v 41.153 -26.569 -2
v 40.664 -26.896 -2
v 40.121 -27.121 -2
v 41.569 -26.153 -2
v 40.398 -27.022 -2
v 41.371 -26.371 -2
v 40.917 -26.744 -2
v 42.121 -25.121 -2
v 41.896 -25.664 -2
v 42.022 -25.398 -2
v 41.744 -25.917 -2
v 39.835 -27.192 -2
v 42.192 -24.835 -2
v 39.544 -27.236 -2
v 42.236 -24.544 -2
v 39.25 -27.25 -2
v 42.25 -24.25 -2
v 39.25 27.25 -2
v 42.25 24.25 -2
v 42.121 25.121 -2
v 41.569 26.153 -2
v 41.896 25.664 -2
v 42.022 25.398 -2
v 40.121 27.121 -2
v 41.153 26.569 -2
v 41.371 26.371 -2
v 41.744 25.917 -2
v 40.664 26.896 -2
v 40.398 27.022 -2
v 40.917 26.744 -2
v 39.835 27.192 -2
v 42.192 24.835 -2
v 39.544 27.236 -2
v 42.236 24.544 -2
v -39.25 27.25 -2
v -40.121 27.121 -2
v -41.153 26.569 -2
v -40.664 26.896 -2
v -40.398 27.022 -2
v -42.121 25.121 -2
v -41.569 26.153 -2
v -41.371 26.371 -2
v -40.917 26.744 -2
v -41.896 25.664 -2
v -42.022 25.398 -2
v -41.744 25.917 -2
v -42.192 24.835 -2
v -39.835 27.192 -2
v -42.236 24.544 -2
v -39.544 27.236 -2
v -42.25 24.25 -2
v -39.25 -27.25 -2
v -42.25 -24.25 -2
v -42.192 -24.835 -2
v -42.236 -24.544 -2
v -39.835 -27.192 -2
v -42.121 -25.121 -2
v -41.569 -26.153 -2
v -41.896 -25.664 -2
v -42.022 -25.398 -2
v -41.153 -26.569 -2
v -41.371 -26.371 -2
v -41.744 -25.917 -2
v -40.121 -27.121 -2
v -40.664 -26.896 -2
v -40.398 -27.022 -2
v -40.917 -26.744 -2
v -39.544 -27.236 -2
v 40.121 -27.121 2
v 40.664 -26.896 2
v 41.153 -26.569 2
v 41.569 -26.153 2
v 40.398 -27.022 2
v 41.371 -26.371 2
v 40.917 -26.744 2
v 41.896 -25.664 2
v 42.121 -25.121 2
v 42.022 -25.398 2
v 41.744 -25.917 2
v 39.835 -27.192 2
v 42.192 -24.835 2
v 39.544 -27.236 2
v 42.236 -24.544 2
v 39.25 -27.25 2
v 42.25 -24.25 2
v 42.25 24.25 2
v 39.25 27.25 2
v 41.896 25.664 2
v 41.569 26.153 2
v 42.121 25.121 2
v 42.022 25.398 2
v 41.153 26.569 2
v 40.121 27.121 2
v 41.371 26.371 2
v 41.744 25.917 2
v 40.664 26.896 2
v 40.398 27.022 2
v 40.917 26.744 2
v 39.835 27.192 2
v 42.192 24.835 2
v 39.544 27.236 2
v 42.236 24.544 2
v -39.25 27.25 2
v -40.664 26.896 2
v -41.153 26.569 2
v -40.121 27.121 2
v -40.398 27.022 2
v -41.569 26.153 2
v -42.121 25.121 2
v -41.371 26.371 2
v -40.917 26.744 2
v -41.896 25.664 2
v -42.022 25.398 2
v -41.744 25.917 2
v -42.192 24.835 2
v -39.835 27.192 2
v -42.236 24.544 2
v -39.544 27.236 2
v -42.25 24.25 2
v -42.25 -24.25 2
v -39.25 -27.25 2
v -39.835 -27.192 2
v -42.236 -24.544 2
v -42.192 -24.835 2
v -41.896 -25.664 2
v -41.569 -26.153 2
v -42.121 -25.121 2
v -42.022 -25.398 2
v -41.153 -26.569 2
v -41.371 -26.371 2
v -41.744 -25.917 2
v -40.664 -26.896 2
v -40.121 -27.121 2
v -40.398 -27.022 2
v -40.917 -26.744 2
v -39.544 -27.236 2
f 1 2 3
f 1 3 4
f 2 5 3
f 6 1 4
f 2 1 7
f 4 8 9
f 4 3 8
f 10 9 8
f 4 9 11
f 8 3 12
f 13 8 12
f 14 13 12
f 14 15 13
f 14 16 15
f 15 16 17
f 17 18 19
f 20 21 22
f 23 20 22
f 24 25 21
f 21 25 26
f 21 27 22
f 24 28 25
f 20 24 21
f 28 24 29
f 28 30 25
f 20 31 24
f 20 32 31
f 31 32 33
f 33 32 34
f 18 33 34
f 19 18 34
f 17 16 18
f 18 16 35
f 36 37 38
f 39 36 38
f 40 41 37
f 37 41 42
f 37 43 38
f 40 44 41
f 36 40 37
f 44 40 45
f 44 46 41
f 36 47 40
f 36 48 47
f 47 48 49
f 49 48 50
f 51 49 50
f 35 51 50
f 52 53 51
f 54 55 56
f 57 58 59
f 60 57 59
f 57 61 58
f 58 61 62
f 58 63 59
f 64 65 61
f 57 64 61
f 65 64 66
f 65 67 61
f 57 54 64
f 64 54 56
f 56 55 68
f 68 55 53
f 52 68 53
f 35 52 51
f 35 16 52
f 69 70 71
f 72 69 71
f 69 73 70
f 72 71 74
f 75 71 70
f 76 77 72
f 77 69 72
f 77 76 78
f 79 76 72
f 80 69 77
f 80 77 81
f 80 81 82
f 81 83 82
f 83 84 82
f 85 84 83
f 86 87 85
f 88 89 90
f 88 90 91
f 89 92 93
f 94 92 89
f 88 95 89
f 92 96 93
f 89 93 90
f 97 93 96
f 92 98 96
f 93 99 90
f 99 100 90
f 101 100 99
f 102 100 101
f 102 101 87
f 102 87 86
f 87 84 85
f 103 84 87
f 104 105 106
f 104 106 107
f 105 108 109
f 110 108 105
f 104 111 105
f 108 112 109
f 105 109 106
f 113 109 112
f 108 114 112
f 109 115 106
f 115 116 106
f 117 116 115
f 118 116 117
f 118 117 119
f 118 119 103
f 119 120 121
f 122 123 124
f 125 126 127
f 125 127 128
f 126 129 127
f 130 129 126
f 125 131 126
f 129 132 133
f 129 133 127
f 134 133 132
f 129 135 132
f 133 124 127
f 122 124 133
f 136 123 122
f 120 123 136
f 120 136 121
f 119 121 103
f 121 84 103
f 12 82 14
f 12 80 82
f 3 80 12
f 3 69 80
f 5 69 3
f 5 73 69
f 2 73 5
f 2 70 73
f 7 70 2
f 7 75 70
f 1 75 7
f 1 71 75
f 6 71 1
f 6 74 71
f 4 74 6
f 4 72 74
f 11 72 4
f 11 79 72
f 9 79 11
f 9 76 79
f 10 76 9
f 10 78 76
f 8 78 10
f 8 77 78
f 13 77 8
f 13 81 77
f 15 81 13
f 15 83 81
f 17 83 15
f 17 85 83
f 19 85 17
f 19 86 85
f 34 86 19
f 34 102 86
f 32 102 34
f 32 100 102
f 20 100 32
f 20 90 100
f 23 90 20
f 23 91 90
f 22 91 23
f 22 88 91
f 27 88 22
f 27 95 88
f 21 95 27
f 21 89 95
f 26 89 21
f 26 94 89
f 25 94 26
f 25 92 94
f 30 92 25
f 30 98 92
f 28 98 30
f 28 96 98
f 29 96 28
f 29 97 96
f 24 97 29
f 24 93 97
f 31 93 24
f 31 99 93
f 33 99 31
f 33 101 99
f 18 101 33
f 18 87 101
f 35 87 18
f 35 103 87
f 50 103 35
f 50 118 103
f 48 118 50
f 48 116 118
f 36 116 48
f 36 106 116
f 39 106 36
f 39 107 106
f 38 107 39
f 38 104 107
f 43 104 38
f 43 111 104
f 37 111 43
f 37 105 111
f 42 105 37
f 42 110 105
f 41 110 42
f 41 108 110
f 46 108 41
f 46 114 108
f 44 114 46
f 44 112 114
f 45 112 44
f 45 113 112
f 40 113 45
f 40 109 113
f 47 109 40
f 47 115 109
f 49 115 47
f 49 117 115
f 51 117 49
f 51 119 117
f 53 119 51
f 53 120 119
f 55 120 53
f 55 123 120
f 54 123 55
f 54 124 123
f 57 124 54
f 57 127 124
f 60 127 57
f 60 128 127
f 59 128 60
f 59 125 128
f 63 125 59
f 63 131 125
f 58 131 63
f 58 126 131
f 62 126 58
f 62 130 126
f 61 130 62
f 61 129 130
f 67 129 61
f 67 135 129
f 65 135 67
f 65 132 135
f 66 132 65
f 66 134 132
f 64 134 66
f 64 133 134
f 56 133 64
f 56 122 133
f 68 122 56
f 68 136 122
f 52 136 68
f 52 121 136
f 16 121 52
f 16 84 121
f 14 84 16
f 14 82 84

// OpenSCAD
$fn = 64;

module pcb_display_bezel(width=84.5, height=54.5, thickness=4, corner_r=3) {
    // Rounded-rectangle bezel block
    linear_extrude(height=thickness, center=true)
        offset(r=corner_r)
            square([width-2*corner_r, height-2*corner_r], center=true);
}

pcb_display_bezel();
